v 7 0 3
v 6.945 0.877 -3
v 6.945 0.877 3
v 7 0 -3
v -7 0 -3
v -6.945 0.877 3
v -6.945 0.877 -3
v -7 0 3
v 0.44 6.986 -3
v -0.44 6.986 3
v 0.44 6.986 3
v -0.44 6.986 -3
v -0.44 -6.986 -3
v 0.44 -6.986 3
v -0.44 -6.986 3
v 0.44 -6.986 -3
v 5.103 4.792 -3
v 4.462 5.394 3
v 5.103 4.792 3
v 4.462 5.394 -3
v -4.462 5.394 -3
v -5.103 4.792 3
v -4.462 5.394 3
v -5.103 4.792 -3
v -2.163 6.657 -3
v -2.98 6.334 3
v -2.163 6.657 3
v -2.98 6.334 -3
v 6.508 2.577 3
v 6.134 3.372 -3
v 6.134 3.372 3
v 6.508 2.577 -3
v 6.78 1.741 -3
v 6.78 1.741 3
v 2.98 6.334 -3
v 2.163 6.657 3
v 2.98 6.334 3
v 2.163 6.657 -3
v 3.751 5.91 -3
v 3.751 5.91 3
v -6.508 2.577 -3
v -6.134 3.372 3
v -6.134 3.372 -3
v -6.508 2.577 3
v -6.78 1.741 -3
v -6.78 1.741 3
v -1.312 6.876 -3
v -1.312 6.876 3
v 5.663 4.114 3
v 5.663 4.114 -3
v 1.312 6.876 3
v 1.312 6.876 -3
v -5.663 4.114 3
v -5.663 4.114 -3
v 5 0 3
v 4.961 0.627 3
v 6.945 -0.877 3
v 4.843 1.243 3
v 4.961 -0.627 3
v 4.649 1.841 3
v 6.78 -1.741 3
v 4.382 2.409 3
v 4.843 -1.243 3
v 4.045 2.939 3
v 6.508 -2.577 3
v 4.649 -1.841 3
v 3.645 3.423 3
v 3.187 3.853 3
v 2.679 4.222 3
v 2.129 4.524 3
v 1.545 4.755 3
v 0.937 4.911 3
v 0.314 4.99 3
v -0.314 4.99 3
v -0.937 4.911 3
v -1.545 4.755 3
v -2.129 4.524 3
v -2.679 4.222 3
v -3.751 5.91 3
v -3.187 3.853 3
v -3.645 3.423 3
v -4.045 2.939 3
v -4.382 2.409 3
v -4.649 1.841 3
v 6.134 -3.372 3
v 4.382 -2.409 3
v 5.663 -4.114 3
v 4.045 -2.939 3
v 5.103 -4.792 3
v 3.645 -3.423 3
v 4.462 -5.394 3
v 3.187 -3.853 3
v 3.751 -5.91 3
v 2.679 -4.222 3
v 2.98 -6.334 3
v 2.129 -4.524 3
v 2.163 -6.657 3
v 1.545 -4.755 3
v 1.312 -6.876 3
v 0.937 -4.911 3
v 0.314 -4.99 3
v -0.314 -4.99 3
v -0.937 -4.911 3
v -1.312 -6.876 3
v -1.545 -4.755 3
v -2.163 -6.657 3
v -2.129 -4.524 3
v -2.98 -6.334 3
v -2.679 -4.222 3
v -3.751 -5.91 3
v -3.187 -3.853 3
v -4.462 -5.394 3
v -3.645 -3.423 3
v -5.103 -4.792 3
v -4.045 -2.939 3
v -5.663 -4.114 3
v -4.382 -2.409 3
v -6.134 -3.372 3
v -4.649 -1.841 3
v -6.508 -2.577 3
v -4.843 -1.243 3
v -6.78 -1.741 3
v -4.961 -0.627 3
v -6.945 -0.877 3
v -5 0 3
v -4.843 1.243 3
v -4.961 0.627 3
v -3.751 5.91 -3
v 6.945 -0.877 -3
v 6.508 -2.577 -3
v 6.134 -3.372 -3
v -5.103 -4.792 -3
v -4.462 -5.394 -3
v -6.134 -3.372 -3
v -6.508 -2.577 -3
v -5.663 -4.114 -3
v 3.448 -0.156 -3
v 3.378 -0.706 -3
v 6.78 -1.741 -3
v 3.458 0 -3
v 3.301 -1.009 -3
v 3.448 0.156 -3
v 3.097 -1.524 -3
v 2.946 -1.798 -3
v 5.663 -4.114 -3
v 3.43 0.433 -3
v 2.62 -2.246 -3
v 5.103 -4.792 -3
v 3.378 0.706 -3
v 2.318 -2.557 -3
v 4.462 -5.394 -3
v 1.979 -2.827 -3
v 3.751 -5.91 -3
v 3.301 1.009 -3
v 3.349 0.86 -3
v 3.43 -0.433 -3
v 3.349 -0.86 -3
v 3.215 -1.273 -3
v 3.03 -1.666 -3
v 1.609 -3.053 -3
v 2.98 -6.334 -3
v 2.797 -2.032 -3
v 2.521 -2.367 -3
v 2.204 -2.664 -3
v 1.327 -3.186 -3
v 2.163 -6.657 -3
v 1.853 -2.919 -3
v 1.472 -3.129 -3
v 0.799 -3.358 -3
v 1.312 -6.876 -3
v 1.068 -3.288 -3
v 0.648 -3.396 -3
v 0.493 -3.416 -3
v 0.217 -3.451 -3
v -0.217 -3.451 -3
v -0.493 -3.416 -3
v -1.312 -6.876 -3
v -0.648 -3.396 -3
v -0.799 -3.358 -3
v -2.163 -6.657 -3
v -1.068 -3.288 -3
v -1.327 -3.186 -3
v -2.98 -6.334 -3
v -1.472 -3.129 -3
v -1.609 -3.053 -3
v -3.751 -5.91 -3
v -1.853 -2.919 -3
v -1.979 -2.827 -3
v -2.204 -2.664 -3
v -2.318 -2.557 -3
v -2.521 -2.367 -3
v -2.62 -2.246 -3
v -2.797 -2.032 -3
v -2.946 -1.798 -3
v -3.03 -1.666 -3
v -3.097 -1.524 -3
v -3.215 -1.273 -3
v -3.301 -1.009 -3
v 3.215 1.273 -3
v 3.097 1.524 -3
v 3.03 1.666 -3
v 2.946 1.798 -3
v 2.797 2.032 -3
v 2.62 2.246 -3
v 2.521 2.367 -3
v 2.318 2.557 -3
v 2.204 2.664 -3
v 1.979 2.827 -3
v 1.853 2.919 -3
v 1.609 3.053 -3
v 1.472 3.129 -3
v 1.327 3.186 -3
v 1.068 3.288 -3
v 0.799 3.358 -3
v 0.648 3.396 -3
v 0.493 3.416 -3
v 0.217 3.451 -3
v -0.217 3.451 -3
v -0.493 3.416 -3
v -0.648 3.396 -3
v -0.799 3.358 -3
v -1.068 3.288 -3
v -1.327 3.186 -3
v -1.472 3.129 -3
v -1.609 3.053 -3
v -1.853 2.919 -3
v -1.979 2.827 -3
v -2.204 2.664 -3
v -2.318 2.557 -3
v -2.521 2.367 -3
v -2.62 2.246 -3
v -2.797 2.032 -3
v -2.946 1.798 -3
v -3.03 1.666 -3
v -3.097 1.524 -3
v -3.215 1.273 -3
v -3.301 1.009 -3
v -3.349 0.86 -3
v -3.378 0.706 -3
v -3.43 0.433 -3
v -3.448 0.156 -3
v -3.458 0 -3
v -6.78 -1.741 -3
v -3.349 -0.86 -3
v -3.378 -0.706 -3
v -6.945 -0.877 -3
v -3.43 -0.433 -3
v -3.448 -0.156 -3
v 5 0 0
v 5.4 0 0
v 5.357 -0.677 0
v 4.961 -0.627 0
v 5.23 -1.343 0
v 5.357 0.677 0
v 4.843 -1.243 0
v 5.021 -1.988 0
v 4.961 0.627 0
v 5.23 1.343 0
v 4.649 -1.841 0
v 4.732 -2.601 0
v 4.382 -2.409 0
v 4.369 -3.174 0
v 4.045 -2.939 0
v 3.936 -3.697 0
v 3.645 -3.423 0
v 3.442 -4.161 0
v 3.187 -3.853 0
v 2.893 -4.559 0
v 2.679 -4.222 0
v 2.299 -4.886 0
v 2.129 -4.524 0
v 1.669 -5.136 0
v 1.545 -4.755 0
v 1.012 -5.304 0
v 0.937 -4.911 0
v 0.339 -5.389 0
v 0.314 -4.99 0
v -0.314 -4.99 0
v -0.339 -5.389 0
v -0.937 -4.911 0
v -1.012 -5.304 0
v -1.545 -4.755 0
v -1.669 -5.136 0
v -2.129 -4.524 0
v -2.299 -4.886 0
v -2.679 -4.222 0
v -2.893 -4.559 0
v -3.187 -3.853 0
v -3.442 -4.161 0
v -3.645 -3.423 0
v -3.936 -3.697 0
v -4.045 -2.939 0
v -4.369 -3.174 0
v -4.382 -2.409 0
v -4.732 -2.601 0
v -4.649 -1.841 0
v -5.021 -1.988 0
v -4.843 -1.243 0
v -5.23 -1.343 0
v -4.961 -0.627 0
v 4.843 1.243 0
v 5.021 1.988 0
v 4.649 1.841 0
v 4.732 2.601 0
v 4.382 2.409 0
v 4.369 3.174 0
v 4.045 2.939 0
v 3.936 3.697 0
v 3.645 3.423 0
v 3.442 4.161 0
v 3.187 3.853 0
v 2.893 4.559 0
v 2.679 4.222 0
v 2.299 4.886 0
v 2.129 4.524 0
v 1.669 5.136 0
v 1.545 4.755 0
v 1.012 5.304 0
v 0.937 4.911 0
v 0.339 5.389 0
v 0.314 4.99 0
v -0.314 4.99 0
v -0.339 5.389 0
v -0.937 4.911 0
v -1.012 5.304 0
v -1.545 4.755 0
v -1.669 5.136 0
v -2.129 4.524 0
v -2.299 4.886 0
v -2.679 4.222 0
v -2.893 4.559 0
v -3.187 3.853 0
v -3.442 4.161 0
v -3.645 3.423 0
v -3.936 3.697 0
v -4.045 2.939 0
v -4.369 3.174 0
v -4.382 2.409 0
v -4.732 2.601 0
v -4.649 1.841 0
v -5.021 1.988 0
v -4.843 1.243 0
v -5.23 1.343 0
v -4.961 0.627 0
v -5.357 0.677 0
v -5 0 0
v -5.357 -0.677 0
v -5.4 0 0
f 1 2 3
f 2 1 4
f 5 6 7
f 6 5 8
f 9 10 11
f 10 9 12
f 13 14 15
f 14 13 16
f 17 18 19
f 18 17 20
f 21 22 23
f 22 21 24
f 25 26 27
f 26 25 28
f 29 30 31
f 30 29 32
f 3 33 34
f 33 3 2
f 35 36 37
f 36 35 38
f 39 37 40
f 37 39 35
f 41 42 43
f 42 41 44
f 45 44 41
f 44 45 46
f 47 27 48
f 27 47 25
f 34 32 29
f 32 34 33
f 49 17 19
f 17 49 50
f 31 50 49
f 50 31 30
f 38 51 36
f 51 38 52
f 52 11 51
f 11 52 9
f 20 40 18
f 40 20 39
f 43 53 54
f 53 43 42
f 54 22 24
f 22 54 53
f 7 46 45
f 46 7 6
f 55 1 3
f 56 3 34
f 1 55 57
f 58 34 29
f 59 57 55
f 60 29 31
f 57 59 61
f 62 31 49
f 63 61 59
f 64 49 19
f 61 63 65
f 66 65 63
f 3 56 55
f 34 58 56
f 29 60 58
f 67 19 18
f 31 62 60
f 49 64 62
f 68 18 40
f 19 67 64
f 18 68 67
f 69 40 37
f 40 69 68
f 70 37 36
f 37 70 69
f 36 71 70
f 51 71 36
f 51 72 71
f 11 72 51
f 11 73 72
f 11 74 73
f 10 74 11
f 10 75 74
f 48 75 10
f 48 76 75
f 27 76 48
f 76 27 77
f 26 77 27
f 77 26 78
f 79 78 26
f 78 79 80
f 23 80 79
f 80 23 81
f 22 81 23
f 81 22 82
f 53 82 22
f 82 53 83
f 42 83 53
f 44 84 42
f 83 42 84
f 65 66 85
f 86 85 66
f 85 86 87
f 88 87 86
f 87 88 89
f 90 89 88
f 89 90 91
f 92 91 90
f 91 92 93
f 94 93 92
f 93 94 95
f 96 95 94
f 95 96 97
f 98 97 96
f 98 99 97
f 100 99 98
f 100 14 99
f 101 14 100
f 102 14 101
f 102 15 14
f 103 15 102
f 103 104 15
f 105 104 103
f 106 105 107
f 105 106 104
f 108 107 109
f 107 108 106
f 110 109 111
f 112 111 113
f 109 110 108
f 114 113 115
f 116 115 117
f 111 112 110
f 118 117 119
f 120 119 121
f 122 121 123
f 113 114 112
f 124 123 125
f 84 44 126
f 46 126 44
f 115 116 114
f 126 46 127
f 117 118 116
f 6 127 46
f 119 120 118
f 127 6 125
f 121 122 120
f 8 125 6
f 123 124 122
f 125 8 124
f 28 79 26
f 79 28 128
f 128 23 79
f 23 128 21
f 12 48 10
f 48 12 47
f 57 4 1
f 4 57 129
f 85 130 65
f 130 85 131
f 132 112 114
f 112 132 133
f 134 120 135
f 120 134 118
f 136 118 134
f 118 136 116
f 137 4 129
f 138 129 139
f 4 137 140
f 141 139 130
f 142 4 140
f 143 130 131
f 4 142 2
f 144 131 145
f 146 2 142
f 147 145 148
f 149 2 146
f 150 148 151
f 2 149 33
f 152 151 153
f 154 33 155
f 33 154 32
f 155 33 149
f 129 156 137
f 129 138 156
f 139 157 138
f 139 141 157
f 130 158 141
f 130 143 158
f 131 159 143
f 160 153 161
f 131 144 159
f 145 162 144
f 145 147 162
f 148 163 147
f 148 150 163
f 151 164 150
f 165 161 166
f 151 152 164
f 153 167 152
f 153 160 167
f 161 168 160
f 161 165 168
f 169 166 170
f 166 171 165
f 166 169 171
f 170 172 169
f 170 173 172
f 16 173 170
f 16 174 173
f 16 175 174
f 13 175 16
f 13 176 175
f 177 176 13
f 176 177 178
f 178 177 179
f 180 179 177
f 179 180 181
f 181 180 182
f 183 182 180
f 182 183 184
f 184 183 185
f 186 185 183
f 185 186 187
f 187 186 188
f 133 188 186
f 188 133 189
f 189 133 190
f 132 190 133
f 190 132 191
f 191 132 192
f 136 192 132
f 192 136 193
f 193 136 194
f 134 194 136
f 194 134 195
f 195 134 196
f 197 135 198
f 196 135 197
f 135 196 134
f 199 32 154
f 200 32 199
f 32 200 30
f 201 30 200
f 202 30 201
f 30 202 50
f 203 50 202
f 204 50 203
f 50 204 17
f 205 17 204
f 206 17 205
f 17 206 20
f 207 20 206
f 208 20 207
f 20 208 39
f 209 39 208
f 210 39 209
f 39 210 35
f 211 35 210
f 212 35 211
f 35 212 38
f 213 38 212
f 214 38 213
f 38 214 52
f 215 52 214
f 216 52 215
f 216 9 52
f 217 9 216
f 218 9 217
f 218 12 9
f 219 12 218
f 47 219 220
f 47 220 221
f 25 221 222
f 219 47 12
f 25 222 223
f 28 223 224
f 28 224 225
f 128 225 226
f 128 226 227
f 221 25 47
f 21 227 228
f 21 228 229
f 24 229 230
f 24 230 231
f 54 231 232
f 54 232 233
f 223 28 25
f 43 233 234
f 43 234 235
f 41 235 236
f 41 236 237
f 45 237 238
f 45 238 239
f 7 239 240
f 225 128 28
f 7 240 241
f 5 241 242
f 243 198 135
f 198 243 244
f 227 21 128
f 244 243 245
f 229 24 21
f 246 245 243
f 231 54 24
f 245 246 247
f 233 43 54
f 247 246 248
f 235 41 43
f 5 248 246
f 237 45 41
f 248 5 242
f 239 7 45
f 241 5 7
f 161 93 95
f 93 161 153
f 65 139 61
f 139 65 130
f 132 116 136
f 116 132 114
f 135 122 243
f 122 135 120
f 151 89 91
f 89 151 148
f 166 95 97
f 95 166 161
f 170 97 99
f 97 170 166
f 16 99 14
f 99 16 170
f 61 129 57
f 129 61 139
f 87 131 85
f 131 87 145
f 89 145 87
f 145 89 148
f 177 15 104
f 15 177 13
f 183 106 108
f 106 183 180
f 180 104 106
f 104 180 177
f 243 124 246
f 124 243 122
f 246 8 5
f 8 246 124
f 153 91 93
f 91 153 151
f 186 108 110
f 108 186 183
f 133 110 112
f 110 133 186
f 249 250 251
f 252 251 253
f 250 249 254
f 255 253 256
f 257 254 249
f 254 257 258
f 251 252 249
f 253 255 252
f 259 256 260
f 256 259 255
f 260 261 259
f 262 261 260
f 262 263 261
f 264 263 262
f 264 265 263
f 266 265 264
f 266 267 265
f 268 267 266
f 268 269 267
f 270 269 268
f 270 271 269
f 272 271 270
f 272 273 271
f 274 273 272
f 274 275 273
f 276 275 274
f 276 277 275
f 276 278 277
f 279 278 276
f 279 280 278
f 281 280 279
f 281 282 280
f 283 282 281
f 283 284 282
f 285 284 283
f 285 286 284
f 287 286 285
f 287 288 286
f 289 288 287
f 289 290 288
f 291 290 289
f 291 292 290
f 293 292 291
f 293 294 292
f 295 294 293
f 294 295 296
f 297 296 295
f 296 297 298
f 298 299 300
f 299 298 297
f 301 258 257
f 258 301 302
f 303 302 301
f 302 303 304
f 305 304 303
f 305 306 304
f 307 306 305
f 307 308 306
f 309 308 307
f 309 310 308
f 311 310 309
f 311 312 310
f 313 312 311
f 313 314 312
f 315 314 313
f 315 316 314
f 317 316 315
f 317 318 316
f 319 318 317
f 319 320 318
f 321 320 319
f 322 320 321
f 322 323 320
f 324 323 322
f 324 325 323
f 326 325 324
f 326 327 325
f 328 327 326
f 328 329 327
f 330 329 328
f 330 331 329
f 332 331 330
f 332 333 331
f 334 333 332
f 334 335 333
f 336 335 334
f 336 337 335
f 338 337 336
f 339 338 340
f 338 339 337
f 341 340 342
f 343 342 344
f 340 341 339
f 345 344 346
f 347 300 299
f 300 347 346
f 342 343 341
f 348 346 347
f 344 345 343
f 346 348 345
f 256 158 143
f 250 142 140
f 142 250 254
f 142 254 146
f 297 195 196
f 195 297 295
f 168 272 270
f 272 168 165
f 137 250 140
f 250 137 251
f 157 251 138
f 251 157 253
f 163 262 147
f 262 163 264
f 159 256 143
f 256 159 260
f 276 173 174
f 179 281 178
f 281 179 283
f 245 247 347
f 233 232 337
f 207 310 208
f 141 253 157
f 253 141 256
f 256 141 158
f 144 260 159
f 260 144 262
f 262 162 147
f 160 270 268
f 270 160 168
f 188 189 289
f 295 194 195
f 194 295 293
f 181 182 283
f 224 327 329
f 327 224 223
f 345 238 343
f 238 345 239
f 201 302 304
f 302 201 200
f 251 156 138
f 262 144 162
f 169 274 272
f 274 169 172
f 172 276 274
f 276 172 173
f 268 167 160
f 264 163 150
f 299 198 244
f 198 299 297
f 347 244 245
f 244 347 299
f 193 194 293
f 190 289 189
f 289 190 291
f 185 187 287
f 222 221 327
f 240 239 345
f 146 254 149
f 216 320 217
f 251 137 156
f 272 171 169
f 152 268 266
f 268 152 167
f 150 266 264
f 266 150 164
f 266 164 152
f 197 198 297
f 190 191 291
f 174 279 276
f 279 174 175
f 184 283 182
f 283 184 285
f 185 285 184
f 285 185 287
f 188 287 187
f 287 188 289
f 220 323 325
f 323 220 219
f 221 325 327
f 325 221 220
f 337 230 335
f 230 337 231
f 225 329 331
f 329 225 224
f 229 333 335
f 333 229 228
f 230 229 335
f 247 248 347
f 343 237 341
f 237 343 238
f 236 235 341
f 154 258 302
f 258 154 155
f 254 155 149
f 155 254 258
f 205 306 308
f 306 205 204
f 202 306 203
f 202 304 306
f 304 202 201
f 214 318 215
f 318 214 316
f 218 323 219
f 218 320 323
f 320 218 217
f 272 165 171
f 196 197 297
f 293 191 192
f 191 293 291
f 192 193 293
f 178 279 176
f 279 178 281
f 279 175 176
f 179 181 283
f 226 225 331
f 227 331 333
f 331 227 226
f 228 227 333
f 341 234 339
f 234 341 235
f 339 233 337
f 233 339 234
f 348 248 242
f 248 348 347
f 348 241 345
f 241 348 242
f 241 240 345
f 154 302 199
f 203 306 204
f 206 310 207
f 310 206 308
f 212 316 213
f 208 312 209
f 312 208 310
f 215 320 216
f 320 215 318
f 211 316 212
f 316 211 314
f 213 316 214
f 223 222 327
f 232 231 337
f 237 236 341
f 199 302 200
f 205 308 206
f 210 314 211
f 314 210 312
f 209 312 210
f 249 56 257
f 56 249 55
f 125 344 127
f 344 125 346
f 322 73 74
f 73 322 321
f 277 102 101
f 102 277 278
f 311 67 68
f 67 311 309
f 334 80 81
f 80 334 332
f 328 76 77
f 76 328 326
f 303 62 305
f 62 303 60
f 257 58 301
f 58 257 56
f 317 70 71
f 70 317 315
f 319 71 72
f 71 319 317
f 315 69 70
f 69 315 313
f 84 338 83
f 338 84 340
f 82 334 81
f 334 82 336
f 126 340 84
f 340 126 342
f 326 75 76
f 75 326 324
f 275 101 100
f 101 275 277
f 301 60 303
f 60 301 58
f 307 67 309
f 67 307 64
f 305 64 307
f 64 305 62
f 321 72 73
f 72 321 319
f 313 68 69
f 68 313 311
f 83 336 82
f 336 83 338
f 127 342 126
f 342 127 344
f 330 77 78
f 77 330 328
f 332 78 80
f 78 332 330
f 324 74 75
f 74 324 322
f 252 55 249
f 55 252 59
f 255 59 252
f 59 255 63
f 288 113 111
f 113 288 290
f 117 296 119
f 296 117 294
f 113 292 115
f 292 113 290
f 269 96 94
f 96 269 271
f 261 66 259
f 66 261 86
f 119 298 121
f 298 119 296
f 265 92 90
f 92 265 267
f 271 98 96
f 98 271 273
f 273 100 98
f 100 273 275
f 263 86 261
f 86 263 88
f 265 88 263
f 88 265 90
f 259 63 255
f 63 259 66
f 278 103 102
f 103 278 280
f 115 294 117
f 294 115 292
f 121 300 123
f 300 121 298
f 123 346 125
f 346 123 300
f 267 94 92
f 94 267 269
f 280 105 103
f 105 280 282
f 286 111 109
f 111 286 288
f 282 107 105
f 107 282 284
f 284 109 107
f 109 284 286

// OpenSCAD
$fn = 50;

difference() {
	union() {
		translate(v = [0, 0, -3.0]) {
			cylinder(h = 6, r = 7.0);
		}
		#translate(v = [0, 0, -6.0]) {
			cylinder(h = 6, r = 2.875);
		}
	}
	union() {
		translate(v = [0, 0, 0]) {
			rotate(a = [0, 0, 0]) {
				difference() {
					union() {
						translate(v = [0, 0, -6.0]) {
							cylinder(h = 6, r = 2.6);
						}
						translate(v = [0, 0, -3.9]) {
							cylinder(h = 3.9, r1 = 2.875, r2 = 5.4);
						}
						translate(v = [0, 0, -6.0]) {
							cylinder(h = 6, r = 2.875);
						}
						translate(v = [0, 0, -6.0]) {
							cylinder(h = 6, r = 2.6);
						}
					}
					union();
				}
			}
		}
		#cylinder(h = 3, r = 5.0);
	}
}
